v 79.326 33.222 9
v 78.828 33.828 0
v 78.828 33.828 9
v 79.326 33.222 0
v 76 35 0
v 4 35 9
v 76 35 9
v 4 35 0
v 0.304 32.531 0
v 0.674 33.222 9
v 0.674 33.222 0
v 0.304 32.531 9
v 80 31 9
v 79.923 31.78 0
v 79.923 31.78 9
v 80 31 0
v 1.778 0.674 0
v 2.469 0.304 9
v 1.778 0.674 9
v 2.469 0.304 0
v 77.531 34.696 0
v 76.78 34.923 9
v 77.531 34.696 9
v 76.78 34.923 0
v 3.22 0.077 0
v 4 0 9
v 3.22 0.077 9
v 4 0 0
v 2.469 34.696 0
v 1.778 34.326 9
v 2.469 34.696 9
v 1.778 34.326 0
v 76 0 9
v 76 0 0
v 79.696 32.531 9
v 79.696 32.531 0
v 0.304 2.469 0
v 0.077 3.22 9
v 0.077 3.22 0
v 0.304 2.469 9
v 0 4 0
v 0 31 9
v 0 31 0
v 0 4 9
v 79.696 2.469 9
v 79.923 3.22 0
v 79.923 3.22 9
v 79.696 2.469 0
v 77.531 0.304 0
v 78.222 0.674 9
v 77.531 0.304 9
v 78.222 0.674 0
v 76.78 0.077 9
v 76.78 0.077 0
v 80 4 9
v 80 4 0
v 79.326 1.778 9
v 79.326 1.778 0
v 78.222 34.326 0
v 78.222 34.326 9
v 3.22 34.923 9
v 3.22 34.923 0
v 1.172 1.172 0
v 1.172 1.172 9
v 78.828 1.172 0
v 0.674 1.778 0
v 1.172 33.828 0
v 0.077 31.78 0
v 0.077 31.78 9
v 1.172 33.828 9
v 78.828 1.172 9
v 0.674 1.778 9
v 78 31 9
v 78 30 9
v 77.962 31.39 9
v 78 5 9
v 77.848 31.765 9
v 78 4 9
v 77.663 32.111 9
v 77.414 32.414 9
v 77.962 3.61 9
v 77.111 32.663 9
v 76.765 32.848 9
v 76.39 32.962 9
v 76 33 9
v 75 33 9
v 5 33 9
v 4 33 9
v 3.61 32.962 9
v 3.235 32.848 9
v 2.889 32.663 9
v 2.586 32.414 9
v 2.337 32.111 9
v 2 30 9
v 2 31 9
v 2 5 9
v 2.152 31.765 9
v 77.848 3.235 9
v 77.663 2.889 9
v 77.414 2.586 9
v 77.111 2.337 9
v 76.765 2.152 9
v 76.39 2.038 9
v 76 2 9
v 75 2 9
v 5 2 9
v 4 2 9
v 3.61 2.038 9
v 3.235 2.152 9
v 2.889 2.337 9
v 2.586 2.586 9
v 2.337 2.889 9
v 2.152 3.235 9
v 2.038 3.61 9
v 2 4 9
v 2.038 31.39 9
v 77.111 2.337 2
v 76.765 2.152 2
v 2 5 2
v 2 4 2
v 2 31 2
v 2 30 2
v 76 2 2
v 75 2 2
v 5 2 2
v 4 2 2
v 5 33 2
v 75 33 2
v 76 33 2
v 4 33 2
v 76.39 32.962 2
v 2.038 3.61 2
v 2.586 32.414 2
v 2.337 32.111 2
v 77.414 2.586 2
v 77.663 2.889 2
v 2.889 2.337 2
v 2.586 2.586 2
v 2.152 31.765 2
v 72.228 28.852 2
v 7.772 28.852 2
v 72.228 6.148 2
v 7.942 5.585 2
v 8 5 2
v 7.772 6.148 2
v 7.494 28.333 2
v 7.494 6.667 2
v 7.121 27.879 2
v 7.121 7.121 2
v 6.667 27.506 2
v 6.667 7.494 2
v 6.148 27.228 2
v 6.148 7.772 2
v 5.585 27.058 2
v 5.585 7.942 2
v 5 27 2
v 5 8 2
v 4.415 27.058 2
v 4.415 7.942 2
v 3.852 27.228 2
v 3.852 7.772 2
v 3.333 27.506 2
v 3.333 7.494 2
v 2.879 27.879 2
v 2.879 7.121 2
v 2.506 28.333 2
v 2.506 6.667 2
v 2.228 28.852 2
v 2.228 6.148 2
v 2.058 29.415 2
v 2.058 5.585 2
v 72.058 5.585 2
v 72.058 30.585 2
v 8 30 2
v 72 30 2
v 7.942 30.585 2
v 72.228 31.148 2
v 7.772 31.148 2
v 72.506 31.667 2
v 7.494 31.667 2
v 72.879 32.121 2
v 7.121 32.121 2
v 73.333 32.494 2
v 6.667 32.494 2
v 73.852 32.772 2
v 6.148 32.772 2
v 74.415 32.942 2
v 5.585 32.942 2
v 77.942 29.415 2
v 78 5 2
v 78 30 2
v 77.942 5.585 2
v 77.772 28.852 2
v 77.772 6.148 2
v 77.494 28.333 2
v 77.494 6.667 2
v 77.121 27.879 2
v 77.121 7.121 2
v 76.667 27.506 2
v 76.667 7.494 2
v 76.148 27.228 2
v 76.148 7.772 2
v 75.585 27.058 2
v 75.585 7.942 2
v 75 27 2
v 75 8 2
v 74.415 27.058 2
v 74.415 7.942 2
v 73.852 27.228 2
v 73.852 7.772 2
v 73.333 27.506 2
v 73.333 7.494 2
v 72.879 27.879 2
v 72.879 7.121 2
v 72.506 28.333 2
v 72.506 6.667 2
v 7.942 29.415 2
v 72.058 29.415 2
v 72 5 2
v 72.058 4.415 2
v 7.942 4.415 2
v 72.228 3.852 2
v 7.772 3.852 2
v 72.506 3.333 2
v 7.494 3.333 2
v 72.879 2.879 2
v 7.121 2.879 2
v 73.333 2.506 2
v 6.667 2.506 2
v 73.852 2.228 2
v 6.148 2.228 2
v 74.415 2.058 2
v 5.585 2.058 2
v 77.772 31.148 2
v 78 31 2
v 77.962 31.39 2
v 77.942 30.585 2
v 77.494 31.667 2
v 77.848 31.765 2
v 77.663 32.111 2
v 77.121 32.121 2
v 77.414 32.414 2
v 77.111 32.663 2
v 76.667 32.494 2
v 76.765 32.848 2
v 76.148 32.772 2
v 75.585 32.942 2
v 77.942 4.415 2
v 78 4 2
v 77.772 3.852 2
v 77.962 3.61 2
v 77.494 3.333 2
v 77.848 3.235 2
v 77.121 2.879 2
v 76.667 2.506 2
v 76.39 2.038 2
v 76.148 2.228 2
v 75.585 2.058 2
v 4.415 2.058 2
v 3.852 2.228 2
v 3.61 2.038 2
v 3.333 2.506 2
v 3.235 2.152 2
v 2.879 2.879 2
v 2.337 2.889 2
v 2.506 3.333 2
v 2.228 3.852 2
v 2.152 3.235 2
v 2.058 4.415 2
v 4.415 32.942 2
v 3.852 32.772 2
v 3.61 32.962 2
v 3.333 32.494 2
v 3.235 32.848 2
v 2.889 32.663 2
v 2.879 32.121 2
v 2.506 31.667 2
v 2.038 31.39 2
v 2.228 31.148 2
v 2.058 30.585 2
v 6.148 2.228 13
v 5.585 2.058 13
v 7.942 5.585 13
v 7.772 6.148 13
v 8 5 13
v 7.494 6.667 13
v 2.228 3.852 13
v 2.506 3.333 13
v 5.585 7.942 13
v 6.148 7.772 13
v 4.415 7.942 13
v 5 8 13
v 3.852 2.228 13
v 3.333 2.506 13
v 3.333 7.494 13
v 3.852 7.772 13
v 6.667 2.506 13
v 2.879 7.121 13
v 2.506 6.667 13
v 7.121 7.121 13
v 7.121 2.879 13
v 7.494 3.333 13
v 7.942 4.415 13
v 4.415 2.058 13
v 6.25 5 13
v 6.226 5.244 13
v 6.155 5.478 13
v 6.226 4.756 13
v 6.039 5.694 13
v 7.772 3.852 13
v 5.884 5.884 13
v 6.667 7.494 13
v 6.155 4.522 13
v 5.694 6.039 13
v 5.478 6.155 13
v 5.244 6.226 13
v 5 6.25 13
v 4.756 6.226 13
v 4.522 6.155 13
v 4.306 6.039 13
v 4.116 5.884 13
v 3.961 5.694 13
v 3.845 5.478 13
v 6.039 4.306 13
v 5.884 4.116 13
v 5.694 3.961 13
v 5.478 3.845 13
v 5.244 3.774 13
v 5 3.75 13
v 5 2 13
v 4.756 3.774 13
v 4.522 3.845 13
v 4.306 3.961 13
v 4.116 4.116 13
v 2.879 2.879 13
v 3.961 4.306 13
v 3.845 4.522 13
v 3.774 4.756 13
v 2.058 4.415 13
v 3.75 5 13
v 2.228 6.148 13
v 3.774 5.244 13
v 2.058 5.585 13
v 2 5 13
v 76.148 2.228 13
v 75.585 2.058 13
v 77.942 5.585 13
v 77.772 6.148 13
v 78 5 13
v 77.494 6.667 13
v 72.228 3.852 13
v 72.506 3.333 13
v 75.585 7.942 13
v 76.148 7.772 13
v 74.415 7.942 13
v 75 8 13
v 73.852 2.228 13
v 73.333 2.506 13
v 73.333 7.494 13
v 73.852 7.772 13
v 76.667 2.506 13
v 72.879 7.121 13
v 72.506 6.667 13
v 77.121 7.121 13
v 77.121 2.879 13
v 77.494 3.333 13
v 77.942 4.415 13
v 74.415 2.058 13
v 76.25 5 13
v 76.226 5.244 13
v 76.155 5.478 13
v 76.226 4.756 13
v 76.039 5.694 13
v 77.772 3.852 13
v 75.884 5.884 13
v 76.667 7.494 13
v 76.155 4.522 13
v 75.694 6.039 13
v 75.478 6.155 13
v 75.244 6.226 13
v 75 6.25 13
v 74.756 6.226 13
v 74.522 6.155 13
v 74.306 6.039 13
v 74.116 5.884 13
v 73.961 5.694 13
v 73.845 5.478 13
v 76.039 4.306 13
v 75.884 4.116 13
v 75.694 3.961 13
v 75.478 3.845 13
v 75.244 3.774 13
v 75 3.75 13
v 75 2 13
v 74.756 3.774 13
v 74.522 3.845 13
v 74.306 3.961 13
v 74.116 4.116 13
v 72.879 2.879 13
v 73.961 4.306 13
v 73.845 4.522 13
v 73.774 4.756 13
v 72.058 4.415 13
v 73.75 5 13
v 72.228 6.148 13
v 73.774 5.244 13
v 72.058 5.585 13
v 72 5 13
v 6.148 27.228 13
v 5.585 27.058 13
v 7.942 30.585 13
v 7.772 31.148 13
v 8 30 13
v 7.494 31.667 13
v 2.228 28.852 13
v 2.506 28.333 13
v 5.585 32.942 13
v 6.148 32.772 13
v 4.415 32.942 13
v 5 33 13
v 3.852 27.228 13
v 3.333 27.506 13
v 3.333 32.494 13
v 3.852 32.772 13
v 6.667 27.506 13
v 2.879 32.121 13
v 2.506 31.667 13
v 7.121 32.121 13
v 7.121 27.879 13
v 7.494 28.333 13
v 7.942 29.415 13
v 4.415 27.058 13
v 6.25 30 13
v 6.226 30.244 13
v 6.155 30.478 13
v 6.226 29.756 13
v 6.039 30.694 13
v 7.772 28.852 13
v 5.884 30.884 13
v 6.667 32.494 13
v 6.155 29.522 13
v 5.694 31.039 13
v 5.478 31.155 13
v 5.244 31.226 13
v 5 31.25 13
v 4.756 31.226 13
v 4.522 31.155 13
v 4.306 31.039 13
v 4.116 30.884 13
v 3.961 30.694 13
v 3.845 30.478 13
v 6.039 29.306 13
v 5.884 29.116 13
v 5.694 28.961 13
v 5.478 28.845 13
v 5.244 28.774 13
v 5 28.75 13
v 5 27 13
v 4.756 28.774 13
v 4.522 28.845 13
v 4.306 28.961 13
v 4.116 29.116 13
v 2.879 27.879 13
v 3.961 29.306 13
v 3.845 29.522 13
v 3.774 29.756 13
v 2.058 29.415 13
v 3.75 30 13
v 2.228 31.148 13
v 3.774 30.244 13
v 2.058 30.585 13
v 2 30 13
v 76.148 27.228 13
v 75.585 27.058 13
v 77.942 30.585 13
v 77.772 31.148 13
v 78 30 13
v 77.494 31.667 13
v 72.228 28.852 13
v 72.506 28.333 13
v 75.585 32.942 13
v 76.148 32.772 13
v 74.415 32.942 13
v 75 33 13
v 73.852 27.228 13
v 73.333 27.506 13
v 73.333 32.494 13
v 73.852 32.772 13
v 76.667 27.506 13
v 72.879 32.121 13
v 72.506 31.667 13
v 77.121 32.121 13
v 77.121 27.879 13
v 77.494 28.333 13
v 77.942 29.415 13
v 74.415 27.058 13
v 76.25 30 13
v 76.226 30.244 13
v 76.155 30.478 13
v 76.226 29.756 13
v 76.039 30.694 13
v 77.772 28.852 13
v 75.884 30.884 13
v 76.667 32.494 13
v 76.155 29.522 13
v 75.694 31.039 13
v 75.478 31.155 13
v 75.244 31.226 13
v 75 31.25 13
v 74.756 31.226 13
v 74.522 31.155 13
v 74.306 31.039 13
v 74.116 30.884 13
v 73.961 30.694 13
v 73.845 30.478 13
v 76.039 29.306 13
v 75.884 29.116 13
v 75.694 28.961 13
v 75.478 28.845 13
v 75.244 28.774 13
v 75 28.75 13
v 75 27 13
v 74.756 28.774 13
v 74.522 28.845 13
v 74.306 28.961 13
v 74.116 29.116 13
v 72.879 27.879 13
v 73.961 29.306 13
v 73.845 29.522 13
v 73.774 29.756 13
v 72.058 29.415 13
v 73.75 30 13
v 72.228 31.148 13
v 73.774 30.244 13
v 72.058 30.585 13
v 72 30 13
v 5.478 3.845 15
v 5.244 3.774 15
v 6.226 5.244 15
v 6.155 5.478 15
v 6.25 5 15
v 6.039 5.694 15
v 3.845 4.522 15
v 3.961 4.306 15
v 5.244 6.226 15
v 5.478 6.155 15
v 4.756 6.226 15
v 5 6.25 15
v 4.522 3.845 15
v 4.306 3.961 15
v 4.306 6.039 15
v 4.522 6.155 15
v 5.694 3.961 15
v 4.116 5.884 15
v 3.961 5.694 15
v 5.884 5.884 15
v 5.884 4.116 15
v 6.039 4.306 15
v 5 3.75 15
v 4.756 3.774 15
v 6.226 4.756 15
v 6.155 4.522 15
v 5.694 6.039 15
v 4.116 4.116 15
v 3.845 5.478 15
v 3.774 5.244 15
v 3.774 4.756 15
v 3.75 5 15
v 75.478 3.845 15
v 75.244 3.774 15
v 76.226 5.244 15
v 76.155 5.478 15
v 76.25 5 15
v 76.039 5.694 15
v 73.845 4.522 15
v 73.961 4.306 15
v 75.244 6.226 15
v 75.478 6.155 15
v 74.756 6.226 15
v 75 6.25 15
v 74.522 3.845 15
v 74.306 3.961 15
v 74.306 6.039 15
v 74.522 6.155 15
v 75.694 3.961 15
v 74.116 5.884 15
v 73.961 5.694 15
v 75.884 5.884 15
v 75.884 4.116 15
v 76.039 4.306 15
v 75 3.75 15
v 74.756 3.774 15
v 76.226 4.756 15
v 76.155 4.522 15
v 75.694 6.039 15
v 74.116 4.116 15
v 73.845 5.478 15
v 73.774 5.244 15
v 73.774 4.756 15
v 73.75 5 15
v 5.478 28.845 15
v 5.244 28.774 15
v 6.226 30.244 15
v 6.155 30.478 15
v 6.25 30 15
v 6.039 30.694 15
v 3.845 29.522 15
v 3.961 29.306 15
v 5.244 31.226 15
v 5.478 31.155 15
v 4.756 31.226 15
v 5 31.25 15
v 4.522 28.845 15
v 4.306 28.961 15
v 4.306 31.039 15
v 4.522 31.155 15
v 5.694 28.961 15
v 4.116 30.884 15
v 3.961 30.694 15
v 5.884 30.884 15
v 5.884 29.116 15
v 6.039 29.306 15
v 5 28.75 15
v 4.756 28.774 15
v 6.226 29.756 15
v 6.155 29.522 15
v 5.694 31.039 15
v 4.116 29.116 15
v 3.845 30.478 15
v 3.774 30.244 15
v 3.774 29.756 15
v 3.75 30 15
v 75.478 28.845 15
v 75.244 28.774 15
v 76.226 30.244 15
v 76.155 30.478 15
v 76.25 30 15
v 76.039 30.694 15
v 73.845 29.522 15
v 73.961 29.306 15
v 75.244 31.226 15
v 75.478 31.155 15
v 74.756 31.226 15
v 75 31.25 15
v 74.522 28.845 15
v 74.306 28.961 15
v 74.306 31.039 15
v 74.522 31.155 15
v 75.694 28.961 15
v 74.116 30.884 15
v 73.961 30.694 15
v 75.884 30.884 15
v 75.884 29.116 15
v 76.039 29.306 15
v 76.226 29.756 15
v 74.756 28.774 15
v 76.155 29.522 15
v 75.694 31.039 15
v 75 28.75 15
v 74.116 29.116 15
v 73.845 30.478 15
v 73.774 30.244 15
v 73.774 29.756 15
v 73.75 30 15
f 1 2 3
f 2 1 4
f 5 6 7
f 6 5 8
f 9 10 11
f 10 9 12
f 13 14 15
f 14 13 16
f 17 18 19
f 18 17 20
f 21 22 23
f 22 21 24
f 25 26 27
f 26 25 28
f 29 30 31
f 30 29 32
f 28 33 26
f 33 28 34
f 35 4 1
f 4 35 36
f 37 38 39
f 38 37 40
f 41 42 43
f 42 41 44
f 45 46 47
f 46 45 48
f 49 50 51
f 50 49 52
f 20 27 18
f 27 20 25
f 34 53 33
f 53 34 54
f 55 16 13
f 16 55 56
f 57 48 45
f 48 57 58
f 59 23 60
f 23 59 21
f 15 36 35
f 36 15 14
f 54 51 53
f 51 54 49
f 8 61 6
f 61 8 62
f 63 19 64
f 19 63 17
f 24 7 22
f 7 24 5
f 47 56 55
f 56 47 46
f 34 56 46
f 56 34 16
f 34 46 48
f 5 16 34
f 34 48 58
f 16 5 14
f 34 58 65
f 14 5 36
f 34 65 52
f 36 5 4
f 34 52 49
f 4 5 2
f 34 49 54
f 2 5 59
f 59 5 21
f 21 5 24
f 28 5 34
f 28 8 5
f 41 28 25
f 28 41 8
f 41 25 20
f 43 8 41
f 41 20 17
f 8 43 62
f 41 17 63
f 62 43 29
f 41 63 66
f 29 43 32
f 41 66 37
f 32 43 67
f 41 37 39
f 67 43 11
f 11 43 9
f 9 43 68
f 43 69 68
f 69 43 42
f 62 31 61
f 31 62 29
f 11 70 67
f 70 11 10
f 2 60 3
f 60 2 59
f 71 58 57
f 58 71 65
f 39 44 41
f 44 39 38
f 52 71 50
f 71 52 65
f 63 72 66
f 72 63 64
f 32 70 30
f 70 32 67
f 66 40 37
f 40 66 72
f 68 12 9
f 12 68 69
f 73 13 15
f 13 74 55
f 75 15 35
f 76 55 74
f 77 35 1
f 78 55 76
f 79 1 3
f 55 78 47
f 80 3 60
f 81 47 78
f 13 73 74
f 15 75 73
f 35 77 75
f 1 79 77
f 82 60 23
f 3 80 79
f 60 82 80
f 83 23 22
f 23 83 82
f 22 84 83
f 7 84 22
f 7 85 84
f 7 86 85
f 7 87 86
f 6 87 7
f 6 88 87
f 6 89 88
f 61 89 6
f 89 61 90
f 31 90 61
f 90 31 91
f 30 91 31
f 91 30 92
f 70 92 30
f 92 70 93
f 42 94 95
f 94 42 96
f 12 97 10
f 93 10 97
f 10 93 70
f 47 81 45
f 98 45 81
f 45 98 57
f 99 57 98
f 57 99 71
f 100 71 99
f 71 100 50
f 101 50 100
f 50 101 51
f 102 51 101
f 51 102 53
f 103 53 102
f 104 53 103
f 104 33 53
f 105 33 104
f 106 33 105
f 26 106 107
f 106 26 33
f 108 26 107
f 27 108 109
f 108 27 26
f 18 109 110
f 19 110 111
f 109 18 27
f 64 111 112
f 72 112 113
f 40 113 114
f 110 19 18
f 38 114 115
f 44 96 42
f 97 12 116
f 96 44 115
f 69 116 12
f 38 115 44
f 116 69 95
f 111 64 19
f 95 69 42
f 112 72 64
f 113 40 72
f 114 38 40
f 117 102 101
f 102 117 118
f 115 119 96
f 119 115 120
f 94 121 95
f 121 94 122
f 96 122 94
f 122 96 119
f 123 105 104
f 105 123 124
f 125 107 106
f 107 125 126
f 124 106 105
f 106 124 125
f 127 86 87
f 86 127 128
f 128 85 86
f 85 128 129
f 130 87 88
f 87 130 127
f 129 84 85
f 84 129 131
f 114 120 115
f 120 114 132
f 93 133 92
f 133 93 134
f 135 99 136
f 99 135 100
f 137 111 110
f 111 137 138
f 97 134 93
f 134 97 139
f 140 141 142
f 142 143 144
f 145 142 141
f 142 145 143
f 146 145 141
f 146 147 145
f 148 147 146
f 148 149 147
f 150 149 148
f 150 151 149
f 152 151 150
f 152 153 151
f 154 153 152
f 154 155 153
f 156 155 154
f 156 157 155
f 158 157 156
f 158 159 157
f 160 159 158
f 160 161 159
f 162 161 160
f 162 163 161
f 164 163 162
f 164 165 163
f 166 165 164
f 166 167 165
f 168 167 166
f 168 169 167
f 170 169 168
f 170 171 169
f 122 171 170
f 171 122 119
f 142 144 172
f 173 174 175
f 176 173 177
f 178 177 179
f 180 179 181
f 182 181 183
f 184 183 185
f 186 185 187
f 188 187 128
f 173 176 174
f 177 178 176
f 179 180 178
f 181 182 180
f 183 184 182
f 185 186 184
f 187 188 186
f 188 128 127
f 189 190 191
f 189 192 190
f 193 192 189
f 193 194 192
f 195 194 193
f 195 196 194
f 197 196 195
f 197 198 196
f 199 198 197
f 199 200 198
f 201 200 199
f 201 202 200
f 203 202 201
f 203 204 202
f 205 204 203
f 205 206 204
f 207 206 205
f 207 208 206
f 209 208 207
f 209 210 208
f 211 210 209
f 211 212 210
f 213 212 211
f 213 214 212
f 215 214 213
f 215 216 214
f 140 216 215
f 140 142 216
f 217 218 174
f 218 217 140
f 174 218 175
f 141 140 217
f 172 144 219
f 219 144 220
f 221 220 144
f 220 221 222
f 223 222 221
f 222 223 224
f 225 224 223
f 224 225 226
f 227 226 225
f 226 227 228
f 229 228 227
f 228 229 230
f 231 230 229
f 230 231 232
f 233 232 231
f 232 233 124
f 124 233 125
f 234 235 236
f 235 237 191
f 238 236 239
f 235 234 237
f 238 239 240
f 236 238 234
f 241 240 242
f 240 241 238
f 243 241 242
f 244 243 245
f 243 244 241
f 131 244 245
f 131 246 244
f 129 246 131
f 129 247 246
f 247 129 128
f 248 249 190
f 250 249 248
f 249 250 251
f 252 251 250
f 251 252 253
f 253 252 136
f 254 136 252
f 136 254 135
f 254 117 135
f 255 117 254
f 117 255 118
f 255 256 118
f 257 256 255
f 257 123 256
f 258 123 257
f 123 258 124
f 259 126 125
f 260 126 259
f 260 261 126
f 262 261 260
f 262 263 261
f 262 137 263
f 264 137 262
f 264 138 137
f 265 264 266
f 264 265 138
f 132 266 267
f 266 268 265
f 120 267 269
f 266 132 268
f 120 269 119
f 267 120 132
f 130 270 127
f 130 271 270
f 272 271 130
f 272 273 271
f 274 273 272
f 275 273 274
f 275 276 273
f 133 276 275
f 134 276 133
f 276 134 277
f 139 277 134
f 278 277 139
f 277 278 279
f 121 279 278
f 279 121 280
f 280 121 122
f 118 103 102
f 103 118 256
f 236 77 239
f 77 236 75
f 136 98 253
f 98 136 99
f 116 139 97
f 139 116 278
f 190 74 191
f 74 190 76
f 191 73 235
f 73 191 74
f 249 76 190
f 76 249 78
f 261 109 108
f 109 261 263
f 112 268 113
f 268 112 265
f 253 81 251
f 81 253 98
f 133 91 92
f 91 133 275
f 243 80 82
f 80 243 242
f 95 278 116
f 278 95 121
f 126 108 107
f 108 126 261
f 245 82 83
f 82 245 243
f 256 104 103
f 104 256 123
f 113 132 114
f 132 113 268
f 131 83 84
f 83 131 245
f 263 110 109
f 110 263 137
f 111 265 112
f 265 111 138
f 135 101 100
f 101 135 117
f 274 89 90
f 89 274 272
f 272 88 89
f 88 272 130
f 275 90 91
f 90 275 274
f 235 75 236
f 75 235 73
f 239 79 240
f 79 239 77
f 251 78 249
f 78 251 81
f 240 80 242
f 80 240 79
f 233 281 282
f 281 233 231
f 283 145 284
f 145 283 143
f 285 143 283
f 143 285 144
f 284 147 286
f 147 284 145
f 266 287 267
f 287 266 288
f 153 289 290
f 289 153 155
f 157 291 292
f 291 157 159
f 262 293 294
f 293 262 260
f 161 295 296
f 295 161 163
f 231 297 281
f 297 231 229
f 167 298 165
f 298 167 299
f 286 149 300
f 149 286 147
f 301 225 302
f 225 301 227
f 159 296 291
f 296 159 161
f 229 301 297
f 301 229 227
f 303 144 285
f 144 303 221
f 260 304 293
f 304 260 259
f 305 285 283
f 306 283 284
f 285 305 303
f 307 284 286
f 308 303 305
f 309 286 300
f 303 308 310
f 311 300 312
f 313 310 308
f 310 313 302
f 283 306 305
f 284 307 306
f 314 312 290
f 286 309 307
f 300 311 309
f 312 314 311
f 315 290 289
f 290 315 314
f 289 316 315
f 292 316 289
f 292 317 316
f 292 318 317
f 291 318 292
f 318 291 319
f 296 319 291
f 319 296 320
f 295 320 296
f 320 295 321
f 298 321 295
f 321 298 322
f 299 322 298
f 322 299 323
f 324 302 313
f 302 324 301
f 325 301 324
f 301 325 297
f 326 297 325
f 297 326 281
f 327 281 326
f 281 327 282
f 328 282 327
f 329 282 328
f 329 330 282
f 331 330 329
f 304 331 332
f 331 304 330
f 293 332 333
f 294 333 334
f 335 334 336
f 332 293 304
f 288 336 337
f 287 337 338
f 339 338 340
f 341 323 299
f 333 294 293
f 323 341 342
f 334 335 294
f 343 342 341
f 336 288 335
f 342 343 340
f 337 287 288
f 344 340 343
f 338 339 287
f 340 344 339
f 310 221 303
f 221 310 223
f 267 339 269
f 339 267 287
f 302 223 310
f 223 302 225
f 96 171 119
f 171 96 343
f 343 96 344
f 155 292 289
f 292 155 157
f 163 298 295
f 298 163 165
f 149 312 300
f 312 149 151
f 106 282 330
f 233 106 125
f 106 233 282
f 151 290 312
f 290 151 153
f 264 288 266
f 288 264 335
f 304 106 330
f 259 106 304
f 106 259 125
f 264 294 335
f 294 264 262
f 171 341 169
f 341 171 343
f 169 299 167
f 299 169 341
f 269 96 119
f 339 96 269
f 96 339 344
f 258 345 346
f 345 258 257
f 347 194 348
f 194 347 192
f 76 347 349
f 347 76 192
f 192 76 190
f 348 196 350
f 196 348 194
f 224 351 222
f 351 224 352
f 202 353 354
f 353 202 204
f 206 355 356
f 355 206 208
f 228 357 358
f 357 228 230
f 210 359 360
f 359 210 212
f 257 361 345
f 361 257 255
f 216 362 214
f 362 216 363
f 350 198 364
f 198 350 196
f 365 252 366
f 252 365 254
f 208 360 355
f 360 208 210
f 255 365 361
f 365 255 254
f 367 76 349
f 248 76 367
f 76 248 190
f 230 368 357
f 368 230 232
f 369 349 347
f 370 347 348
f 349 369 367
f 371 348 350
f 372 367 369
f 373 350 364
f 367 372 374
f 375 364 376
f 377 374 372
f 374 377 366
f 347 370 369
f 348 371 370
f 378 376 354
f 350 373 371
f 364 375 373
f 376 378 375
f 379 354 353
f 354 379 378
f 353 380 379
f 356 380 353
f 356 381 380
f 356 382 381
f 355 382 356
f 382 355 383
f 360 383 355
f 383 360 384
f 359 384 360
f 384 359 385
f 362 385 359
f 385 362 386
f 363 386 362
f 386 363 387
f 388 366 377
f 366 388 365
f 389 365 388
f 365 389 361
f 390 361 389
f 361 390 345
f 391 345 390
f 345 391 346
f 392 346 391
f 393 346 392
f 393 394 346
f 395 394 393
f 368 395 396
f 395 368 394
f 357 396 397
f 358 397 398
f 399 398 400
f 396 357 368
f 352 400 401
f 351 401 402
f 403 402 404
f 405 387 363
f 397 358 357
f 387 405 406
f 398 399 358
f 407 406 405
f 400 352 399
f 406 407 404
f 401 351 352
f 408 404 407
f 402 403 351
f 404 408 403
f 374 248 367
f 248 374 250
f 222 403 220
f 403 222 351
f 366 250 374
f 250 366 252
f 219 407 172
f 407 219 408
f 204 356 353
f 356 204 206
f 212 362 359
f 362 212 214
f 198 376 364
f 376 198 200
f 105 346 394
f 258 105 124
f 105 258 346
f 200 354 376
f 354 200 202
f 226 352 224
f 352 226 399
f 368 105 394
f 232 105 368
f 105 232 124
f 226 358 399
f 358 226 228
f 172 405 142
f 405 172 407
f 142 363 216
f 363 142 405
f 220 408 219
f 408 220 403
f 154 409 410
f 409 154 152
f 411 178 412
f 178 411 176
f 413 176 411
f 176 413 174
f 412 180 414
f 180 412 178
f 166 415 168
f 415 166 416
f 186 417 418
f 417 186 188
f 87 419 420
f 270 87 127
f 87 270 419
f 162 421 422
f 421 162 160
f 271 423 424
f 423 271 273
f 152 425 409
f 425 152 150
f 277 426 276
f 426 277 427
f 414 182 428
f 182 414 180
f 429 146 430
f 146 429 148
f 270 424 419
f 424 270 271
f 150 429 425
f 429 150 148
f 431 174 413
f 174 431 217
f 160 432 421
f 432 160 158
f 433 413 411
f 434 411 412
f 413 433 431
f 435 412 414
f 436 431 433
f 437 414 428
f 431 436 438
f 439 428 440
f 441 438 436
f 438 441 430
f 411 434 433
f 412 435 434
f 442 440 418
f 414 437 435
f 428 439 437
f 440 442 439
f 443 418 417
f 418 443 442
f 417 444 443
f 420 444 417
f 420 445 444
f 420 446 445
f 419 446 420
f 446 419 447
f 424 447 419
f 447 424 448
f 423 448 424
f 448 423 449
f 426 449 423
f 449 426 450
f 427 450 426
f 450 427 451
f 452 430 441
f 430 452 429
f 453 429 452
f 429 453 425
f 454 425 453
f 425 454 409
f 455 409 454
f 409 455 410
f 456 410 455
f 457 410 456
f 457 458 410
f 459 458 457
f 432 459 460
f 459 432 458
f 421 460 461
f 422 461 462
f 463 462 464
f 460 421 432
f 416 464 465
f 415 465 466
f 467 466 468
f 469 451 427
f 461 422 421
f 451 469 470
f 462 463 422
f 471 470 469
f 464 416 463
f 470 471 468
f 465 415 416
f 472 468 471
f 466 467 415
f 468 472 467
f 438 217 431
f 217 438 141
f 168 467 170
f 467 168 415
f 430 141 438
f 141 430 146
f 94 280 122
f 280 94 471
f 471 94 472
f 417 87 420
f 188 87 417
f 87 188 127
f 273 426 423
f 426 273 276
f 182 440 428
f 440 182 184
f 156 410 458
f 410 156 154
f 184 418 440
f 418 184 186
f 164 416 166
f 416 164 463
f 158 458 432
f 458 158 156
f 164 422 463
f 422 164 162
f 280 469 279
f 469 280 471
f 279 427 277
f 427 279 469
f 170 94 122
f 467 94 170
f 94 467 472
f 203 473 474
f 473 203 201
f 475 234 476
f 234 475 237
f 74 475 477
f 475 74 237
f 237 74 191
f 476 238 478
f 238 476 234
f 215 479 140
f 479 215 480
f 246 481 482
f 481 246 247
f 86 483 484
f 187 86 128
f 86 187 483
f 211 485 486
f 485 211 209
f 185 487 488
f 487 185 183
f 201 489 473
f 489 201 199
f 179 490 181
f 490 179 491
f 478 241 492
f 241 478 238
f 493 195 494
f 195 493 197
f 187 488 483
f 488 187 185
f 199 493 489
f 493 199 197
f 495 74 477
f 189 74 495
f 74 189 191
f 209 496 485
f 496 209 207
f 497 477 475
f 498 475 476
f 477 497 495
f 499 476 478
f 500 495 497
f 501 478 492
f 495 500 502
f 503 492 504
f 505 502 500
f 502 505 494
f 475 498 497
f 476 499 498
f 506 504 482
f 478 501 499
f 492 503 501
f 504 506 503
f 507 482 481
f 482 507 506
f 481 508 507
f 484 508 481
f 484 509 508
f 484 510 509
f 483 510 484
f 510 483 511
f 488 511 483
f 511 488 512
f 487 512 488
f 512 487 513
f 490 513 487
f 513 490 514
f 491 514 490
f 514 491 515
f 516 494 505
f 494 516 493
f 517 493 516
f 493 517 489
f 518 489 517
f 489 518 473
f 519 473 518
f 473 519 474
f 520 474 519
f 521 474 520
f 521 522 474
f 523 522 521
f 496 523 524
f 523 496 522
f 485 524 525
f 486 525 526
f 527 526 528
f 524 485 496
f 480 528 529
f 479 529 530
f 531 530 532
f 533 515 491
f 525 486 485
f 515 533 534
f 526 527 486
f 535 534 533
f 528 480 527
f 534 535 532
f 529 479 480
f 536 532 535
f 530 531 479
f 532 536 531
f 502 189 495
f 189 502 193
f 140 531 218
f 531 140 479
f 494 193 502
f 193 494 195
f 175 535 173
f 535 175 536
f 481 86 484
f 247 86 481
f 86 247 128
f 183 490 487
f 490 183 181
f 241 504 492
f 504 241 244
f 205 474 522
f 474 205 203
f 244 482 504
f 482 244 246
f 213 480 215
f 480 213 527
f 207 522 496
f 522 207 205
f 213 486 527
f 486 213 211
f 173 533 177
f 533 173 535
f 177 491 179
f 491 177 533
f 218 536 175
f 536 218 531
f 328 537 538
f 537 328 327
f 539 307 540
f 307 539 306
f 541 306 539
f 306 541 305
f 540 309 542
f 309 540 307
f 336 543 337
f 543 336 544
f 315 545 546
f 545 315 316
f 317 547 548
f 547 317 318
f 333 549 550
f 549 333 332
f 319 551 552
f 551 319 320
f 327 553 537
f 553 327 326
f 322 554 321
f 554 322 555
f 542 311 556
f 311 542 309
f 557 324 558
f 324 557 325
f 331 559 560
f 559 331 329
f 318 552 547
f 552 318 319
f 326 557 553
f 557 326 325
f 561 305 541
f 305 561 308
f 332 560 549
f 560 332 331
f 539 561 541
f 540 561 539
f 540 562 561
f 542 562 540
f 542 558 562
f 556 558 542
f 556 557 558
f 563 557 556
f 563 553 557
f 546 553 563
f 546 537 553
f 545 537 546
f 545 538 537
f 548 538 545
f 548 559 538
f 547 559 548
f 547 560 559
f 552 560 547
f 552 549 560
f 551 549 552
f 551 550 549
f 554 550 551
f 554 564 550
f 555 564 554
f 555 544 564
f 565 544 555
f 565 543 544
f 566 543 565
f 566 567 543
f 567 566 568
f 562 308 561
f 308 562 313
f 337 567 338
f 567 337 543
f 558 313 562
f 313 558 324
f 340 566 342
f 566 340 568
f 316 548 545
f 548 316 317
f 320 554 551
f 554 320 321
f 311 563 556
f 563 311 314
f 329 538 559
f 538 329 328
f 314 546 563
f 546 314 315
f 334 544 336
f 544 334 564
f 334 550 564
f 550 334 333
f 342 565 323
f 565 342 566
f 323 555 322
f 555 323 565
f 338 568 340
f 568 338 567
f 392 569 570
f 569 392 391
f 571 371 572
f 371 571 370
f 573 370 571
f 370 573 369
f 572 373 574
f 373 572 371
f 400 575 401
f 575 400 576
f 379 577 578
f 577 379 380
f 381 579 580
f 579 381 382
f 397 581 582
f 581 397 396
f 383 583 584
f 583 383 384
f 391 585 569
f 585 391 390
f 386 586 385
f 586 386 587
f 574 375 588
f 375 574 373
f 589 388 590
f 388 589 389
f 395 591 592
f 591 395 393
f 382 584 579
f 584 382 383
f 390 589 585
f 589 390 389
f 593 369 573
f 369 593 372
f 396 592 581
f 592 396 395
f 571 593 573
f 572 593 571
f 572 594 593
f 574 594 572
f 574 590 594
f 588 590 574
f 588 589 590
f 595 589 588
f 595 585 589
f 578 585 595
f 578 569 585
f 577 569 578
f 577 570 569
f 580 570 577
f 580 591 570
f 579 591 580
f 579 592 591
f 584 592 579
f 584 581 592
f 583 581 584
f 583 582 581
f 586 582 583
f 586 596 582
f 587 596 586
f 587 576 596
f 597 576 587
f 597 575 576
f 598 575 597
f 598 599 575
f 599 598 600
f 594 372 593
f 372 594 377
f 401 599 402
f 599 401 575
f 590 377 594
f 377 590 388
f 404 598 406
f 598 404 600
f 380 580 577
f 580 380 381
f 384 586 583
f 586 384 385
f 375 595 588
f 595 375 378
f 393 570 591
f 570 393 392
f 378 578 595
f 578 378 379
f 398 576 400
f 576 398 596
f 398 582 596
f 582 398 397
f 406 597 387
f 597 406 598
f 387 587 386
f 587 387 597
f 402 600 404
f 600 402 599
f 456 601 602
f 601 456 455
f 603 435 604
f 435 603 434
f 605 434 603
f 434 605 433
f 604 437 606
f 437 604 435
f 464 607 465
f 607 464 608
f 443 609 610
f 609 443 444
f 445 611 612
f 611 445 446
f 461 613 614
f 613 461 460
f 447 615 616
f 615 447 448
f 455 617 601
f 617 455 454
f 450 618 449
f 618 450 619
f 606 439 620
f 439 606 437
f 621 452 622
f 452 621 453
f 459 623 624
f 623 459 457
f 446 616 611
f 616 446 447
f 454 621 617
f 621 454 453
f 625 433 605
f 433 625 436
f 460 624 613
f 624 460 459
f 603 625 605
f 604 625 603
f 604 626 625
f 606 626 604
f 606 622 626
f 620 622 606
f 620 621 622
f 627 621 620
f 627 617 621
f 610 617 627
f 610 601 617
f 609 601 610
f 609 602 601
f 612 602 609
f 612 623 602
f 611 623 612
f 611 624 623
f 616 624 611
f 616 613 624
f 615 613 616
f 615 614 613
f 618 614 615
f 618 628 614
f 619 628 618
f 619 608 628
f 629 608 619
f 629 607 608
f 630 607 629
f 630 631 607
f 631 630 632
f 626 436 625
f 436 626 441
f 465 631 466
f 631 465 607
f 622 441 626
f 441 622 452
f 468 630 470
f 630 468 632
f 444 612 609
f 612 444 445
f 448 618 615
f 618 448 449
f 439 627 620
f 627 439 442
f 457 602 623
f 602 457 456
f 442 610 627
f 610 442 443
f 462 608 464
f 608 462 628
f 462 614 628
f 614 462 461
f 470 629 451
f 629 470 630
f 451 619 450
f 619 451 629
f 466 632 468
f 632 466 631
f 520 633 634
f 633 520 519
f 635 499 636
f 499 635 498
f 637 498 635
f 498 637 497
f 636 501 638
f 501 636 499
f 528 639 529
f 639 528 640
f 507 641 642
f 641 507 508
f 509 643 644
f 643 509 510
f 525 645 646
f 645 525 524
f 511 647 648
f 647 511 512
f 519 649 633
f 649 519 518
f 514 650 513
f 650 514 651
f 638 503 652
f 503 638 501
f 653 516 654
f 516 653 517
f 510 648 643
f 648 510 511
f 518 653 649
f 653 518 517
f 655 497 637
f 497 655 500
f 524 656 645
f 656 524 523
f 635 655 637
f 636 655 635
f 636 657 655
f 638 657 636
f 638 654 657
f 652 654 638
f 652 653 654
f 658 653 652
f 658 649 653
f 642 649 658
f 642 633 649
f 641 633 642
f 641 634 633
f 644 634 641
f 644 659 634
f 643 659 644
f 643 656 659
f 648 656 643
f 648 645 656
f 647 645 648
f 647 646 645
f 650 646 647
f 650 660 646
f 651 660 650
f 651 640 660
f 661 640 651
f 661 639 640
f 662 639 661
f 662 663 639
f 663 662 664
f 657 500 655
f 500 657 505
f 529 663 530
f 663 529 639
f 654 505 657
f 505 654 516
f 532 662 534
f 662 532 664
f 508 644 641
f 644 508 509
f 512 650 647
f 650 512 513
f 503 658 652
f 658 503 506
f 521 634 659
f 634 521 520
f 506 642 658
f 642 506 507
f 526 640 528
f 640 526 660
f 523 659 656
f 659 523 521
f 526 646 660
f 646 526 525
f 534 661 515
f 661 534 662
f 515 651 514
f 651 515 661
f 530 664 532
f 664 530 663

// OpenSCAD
// HeySalad Audio Terminal - Top Shell
// Designed for T5-AI Core Development Board
// Two-button voice payment terminal

// ===== PARAMETERS =====
// Main enclosure dimensions (external)
enclosure_length = 80;      // mm - slightly longer than 73mm board
enclosure_width = 35;        // mm - slightly wider than 29mm board
enclosure_height = 14;       // mm - total height
wall_thickness = 2;          // mm
corner_radius = 4;           // mm - rounded corners

// Shell split
top_shell_height = 9;        // mm - top portion height
bottom_shell_height = 5;     // mm - bottom portion height

// Button parameters
button_diameter = 16;        // mm - button hole size
button_spacing = 24;         // mm - center-to-center spacing
button_y_offset = 17.5;      // mm - from front edge
button_depth = 2;            // mm - recess depth for button caps

// LED indicator
led_diameter = 4;            // mm
led_x_position = 0;          // mm - centered between buttons
led_y_offset = 17.5;         // mm - same as buttons

// USB-C cutout
usb_width = 9.5;             // mm
usb_height = 3.5;            // mm
usb_y_position = 17.5;       // mm - centered on side

// Screw posts
screw_diameter = 2.5;        // mm - M2.5 screws
screw_post_diameter = 6;     // mm
screw_post_height = 11;      // mm - almost full height

// Branding
text_depth = 0.5;            // mm - embossed text depth

// ===== MODULES =====

// Rounded rectangle module
module rounded_rect(length, width, height, radius) {
    hull() {
        translate([radius, radius, 0])
            cylinder(r=radius, h=height, $fn=32);
        translate([length-radius, radius, 0])
            cylinder(r=radius, h=height, $fn=32);
        translate([radius, width-radius, 0])
            cylinder(r=radius, h=height, $fn=32);
        translate([length-radius, width-radius, 0])
            cylinder(r=radius, h=height, $fn=32);
    }
}

// Main top shell
module top_shell() {
    difference() {
        // Outer shell
        rounded_rect(enclosure_length, enclosure_width, top_shell_height, corner_radius);
        
        // Hollow interior
        translate([wall_thickness, wall_thickness, wall_thickness])
            rounded_rect(
                enclosure_length - 2*wall_thickness, 
                enclosure_width - 2*wall_thickness, 
                top_shell_height, 
                corner_radius - wall_thickness
            );
        
        // Left button hole (green checkmark)
        translate([enclosure_length/2 - button_spacing/2, button_y_offset, top_shell_height - button_depth])
            cylinder(d=button_diameter, h=button_depth + 1, $fn=64);
        
        // Right button hole (red X)
        translate([enclosure_length/2 + button_spacing/2, button_y_offset, top_shell_height - button_depth])
            cylinder(d=button_diameter, h=button_depth + 1, $fn=64);
        
        // LED indicator hole (between buttons)
        translate([enclosure_length/2 + led_x_position, led_y_offset, top_shell_height - 1])
            cylinder(d=led_diameter, h=2, $fn=32);
        
        // HeySalad branding text (embossed)
        translate([enclosure_length - 18, enclosure_width - 8, top_shell_height - text_depth])
            linear_extrude(height=text_depth + 0.1)
                text("HeySalad", size=3.5, font="Arial:style=Bold", halign="right");
    }
    
    // Screw post - front left
    translate([wall_thickness + 3, wall_thickness + 3, wall_thickness])
        cylinder(d=screw_post_diameter, h=screw_post_height, $fn=32);
    
    // Screw post - front right
    translate([enclosure_length - wall_thickness - 3, wall_thickness + 3, wall_thickness])
        cylinder(d=screw_post_diameter, h=screw_post_height, $fn=32);
    
    // Screw post - back left
    translate([wall_thickness + 3, enclosure_width - wall_thickness - 3, wall_thickness])
        cylinder(d=screw_post_diameter, h=screw_post_height, $fn=32);
    
    // Screw post - back right
    translate([enclosure_length - wall_thickness - 3, enclosure_width - wall_thickness - 3, wall_thickness])
        cylinder(d=screw_post_diameter, h=screw_post_height, $fn=32);
    
    // Screw holes in posts
    translate([wall_thickness + 3, wall_thickness + 3, 0])
        cylinder(d=screw_diameter, h=screw_post_height + wall_thickness + 2, $fn=32);
    
    translate([enclosure_length - wall_thickness - 3, wall_thickness + 3, 0])
        cylinder(d=screw_diameter, h=screw_post_height + wall_thickness + 2, $fn=32);
    
    translate([wall_thickness + 3, enclosure_width - wall_thickness - 3, 0])
        cylinder(d=screw_diameter, h=screw_post_height + wall_thickness + 2, $fn=32);
    
    translate([enclosure_length - wall_thickness - 3, enclosure_width - wall_thickness - 3, 0])
        cylinder(d=screw_diameter, h=screw_post_height + wall_thickness + 2, $fn=32);
}

// ===== RENDER =====
top_shell();
